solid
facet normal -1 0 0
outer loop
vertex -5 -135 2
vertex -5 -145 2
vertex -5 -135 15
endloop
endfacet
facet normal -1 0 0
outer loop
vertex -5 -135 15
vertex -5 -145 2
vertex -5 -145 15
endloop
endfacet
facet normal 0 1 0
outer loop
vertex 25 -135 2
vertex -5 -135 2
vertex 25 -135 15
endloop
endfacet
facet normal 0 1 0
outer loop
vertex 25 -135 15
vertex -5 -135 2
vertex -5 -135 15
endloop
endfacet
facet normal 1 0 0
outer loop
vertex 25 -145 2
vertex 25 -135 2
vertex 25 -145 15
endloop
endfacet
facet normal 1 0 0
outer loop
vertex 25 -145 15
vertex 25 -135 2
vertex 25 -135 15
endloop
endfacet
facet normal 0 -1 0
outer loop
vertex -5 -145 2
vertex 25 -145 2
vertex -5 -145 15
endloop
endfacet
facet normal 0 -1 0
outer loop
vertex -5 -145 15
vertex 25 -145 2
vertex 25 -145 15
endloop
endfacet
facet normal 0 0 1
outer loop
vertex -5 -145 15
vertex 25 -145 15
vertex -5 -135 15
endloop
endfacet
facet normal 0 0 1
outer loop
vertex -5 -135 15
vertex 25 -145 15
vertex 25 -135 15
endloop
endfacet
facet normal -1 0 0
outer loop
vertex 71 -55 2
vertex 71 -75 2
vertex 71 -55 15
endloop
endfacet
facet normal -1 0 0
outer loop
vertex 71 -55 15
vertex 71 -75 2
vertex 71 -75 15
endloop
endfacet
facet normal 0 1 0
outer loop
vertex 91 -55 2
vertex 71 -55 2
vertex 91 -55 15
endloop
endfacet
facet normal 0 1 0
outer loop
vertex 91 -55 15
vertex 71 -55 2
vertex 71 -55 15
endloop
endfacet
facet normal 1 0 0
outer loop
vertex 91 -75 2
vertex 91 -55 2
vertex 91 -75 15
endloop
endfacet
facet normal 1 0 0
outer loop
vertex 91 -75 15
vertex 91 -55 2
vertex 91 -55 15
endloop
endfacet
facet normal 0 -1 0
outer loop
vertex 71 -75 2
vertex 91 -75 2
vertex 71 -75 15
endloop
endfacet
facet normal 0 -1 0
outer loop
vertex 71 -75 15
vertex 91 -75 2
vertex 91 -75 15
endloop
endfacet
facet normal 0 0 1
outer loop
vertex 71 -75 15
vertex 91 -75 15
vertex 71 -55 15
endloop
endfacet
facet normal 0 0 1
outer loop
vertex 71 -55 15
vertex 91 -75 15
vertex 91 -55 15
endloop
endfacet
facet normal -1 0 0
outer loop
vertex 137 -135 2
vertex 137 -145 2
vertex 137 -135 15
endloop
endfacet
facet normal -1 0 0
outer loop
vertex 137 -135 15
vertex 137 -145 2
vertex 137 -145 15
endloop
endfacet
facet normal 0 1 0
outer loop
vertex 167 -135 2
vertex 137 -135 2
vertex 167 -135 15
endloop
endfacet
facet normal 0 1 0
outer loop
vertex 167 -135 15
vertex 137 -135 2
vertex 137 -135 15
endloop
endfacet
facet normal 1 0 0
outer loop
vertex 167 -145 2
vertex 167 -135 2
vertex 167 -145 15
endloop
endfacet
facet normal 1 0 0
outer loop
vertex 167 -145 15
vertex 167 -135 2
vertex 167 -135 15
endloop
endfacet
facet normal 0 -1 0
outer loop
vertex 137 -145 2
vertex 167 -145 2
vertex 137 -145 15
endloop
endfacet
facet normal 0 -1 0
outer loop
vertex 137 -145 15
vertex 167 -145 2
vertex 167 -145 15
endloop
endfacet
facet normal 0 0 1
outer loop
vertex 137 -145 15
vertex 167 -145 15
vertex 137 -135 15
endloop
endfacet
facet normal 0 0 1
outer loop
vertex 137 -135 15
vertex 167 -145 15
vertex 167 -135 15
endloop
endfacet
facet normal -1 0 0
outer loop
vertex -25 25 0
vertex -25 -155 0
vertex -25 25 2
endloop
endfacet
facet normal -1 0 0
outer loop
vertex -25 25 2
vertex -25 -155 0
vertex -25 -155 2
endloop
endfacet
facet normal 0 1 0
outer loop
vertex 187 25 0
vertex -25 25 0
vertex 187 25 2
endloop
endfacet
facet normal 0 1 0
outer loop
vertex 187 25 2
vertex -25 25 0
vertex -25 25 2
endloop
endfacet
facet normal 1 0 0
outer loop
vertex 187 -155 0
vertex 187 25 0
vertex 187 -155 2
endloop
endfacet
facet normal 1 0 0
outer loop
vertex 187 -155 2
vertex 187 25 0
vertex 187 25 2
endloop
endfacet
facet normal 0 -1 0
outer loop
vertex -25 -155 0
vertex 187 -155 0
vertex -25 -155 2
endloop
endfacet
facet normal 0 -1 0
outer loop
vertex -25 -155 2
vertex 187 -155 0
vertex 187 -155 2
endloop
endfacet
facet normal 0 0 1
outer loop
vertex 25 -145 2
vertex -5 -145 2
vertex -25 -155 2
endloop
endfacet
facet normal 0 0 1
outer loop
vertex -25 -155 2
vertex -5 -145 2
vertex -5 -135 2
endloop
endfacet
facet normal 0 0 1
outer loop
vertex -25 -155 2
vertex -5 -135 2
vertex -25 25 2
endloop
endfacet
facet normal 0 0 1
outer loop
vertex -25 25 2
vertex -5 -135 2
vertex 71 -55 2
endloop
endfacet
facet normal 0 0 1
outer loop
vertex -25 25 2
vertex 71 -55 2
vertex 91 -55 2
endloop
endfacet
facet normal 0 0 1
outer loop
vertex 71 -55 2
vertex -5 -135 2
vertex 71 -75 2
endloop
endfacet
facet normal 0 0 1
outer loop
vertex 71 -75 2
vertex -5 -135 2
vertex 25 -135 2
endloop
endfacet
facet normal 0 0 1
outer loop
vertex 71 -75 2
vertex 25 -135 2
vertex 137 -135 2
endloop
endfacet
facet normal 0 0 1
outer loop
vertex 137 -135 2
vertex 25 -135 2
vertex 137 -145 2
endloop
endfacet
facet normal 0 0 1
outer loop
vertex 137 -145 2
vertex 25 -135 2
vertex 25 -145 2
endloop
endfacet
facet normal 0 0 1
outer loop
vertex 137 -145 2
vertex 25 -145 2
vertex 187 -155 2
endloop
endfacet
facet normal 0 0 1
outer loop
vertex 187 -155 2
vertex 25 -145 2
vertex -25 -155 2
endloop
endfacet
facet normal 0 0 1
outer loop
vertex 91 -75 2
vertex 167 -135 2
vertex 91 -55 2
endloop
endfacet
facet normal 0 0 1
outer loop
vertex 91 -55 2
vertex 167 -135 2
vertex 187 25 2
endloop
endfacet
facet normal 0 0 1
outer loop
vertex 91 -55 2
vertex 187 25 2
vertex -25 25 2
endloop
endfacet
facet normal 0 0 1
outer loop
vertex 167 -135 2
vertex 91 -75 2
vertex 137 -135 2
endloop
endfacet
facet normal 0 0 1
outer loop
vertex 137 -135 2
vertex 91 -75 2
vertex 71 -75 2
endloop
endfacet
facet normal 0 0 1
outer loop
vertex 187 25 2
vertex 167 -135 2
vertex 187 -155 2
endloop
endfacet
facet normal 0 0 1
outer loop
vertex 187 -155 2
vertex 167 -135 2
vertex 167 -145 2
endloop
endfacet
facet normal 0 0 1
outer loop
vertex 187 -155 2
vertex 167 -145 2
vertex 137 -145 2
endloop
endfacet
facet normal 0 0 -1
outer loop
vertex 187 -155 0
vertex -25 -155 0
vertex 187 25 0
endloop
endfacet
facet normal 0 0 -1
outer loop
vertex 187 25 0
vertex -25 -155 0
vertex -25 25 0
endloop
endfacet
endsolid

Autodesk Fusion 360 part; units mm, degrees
sketch "Sketch1" plane through (0, 0, 0) normal (0, 0, 1) x (1, 0, 0)
  line L0 (-25, 25) -> (187, 25)
  line L1 (187, 25) -> (187, -155)
  line L2 (187, -155) -> (-25, -155)
  line L3 (-25, -155) -> (-25, 25)
  dimension "d1" = 212
  dimension "d2" = 180
extrude "Extrude1" add sketch "Sketch1" along normal blind 2
sketch "Sketch2" plane through (0, 0, 2) normal (0, 0, 1) x (-1, 0, 0)
  line L0 (25, 155) -> (-187, 155)
  line L1 (-187, 155) -> (-187, -25)
  line L2 (-187, -25) -> (25, -25)
  line L3 (25, -25) -> (25, 155)
  line L4 (25, -25) -> (-187, 155) construction
  line L5 (25, 155) -> (-187, -25) construction
  line L6 (25, 65) -> (-81, 65) construction
  line L7 (-187, 65) -> (-81, 65) construction
  line L8 (-81, 65) -> (-81, -25) construction
  line L9 (-81, 65) -> (-81, 155) construction
  line L10 (25, 155) -> (5, 155) construction
  line L11 (5, 155) -> (5, 135) construction
  line L12 (5, 135) -> (25, 135) construction
  line L13 (25, 135) -> (25, 155) construction
  line L14 (-187, 155) -> (-167, 155) construction
  line L15 (-167, 145) -> (-167, 135)
  line L16 (-167, 135) -> (-187, 135) construction
  line L17 (-187, 135) -> (-187, 155) construction
  line L18 (-187, -25) -> (-167, -25) construction
  line L19 (-167, -25) -> (-167, -5) construction
  line L20 (-167, -5) -> (-187, -5) construction
  line L21 (-187, -5) -> (-187, -25) construction
  line L22 (25, -25) -> (5, -25) construction
  line L23 (5, -25) -> (5, -5) construction
  line L24 (5, -5) -> (25, -5) construction
  line L25 (25, -5) -> (25, -25) construction
  line L26 (-167, 135) -> (-137, 135)
  line L27 (-137, 135) -> (-137, 145)
  line L28 (-137, 145) -> (-167, 145)
  line L29 (-167, 145) -> (-167, 135) construction
  line L30 (5, 135) -> (-25, 135)
  line L31 (-25, 135) -> (-25, 145)
  line L32 (-25, 145) -> (5, 145)
  line L33 (5, 145) -> (5, 135)
  line L34 (-167, 155) -> (-167, 145) construction
  line L35 (-71, 55) -> (-91, 55)
  line L36 (-91, 55) -> (-91, 75)
  line L37 (-91, 75) -> (-71, 75)
  line L38 (-71, 75) -> (-71, 55)
  line L39 (-71, 55) -> (-91, 75) construction
  line L40 (-91, 55) -> (-71, 75) construction
  point P0 (-81, 65)
  dimension "d5" = 20
  dimension "d6" = 20
  dimension "d7" = 20
  dimension "d8" = 20
  dimension "d9" = 20
  dimension "d10" = 20
  dimension "d11" = 20
  dimension "d12" = 20
  dimension "d13" = 30
  dimension "d14" = 10
  dimension "d15" = 30
  dimension "d16" = 10
  dimension "d17" = 20
  dimension "d18" = 20
extrude "Extrude2" add sketch "Sketch2" along normal blind 13 contours L15 L26 L27 L28 | L30 L31 L32 L33 | L35 L36 L37 L38
